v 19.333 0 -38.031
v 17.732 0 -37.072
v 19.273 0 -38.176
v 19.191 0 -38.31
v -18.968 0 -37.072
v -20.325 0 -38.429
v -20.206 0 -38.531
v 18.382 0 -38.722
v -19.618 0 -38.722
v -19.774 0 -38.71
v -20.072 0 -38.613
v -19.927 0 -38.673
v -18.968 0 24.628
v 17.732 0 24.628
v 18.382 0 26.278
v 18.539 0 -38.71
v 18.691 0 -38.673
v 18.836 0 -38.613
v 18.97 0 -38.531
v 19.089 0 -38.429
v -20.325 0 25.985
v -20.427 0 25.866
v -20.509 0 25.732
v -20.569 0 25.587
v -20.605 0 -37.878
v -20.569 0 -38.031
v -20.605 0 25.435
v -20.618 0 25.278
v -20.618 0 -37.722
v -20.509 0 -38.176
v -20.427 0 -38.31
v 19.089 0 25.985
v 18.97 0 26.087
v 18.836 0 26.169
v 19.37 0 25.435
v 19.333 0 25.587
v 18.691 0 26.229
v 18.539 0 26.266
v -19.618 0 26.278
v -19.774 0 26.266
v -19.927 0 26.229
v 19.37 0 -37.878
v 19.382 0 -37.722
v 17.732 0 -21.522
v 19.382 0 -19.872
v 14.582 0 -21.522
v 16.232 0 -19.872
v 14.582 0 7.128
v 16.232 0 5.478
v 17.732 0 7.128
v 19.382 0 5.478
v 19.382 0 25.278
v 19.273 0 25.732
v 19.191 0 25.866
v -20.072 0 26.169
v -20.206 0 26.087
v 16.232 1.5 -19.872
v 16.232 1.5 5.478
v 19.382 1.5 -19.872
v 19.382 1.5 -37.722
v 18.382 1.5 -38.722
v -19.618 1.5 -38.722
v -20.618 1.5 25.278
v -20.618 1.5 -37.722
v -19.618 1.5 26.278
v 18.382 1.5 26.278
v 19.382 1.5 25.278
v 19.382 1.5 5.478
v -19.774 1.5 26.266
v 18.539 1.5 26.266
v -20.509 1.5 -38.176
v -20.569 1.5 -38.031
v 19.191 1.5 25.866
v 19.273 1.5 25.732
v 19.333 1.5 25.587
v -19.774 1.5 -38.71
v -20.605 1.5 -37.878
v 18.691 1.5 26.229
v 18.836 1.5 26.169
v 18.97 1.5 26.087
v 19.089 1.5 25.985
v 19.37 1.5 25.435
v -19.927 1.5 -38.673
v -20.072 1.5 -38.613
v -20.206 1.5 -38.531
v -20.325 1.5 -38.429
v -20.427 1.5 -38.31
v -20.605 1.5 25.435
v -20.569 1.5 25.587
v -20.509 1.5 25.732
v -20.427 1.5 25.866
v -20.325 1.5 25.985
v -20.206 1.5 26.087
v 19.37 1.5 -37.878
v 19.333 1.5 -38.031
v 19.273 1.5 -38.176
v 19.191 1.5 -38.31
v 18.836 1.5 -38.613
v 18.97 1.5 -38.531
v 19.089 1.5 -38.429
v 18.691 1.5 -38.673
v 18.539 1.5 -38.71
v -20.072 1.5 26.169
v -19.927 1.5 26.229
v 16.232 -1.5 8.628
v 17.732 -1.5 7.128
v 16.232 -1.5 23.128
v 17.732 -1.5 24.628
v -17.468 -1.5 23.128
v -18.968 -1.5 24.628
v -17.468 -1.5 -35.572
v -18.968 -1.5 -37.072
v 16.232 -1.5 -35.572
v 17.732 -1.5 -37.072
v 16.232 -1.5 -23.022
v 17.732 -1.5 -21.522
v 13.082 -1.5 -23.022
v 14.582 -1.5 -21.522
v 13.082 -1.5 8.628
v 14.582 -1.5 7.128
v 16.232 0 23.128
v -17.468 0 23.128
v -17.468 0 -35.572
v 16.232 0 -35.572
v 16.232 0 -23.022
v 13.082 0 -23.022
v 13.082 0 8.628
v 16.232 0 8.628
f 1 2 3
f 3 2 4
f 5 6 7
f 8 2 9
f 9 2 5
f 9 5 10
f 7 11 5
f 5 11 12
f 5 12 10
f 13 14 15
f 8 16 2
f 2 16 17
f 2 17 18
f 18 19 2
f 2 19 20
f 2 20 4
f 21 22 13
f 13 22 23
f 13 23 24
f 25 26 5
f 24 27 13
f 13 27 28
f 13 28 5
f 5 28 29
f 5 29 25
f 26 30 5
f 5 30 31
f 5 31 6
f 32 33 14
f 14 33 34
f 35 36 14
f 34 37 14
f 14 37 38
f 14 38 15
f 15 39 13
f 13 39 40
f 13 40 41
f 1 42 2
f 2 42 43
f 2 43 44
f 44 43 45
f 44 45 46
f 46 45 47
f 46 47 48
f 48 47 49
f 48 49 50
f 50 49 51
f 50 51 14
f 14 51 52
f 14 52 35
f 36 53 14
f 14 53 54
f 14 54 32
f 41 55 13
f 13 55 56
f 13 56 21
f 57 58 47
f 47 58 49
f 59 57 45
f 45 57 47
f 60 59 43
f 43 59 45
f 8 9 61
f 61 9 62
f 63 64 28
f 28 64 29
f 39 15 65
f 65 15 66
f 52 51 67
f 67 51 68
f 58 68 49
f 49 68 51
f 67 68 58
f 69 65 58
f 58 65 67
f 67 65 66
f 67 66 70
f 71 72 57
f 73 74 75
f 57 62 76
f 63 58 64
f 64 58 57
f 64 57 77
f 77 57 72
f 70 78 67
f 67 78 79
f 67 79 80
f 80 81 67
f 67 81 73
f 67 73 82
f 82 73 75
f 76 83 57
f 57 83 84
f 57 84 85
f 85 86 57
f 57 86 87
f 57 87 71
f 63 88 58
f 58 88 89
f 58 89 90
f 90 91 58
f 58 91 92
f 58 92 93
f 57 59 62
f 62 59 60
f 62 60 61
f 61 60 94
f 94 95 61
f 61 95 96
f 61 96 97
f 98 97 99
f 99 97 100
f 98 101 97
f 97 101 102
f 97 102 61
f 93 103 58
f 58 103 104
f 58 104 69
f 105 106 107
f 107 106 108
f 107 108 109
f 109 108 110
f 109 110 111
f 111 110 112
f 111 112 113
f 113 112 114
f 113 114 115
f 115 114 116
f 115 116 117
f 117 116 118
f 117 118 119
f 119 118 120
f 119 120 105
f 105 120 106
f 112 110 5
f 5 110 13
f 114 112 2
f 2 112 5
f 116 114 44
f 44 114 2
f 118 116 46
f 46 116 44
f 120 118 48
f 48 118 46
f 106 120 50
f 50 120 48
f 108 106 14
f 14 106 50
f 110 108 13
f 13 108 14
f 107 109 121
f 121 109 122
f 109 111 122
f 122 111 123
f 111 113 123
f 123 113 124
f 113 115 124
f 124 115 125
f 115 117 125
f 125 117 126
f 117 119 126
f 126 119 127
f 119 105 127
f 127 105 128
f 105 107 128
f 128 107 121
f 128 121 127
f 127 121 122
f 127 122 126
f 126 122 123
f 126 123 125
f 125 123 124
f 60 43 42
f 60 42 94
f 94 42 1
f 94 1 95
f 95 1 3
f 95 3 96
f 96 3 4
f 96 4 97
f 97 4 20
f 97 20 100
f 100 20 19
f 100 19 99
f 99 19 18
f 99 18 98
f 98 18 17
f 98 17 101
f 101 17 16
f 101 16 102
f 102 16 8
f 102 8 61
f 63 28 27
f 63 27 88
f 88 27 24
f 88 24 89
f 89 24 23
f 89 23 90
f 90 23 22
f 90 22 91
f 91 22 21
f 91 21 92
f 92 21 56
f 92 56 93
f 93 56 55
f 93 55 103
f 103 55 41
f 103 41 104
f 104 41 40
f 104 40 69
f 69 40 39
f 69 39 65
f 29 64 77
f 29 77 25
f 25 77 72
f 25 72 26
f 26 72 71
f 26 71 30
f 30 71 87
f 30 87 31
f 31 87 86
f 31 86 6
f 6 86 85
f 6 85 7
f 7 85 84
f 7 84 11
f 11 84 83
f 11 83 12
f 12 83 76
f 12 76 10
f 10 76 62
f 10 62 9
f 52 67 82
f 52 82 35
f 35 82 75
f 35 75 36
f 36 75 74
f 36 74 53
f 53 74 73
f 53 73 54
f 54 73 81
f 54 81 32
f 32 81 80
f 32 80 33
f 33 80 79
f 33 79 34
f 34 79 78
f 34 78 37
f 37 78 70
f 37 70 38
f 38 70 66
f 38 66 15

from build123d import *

# Parameters (mm, degrees)
BOSS_EXTRUDE1_DEPTH = 1.5
BOSS_EXTRUDE2_DEPTH = 1.5
FILLET1_R           = 1


with BuildPart() as part:
    # Sketch1 → Boss-Extrude1 (new body)
    with BuildSketch(Plane(origin=(0, 0, 0), x_dir=(1, 0, 0), z_dir=(0, 1, 0))):
        Polygon((19.382239382, 38.721878286), (-20.617760618, 38.721878286), (-20.617760618, -26.278121714), (19.382239382, -26.278121714), (19.382239382, -5.478121714), (16.232239382, -5.478121714), (16.232239382, 19.871878286), (19.382239382, 19.871878286), align=None)
    extrude(amount=BOSS_EXTRUDE1_DEPTH)

    # Sketch2 → Boss-Extrude2 (add)
    with BuildSketch(Plane.XZ):
        Polygon((-18.967760618, 24.628121714), (17.732239382, 24.628121714), (17.732239382, 7.128121714), (14.582239382, 7.128121714), (14.582239382, -21.521878286), (17.732239382, -21.521878286), (17.732239382, -37.071878286), (-18.967760618, -37.071878286), align=None)
        Polygon((-17.467760618, 23.128121714), (-17.467760618, -35.571878286), (16.232239382, -35.571878286), (16.232239382, -23.021878286), (13.082239382, -23.021878286), (13.082239382, 8.628121714), (16.232239382, 8.628121714), (16.232239382, 23.128121714), align=None, mode=Mode.SUBTRACT)
    extrude(amount=BOSS_EXTRUDE2_DEPTH)

    # Fillet1
    fillet1_edges = [part.edges().sort_by_distance(p)[0] for p in [
        (19.382239382, 0.75, 26.278121714),
        (-20.617760618, 0.75, 26.278121714),
        (-20.617760618, 0.75, -38.721878286),
        (19.382239382, 0.75, -38.721878286),
    ]]
    fillet(fillet1_edges, radius=FILLET1_R)


solid = part.part
